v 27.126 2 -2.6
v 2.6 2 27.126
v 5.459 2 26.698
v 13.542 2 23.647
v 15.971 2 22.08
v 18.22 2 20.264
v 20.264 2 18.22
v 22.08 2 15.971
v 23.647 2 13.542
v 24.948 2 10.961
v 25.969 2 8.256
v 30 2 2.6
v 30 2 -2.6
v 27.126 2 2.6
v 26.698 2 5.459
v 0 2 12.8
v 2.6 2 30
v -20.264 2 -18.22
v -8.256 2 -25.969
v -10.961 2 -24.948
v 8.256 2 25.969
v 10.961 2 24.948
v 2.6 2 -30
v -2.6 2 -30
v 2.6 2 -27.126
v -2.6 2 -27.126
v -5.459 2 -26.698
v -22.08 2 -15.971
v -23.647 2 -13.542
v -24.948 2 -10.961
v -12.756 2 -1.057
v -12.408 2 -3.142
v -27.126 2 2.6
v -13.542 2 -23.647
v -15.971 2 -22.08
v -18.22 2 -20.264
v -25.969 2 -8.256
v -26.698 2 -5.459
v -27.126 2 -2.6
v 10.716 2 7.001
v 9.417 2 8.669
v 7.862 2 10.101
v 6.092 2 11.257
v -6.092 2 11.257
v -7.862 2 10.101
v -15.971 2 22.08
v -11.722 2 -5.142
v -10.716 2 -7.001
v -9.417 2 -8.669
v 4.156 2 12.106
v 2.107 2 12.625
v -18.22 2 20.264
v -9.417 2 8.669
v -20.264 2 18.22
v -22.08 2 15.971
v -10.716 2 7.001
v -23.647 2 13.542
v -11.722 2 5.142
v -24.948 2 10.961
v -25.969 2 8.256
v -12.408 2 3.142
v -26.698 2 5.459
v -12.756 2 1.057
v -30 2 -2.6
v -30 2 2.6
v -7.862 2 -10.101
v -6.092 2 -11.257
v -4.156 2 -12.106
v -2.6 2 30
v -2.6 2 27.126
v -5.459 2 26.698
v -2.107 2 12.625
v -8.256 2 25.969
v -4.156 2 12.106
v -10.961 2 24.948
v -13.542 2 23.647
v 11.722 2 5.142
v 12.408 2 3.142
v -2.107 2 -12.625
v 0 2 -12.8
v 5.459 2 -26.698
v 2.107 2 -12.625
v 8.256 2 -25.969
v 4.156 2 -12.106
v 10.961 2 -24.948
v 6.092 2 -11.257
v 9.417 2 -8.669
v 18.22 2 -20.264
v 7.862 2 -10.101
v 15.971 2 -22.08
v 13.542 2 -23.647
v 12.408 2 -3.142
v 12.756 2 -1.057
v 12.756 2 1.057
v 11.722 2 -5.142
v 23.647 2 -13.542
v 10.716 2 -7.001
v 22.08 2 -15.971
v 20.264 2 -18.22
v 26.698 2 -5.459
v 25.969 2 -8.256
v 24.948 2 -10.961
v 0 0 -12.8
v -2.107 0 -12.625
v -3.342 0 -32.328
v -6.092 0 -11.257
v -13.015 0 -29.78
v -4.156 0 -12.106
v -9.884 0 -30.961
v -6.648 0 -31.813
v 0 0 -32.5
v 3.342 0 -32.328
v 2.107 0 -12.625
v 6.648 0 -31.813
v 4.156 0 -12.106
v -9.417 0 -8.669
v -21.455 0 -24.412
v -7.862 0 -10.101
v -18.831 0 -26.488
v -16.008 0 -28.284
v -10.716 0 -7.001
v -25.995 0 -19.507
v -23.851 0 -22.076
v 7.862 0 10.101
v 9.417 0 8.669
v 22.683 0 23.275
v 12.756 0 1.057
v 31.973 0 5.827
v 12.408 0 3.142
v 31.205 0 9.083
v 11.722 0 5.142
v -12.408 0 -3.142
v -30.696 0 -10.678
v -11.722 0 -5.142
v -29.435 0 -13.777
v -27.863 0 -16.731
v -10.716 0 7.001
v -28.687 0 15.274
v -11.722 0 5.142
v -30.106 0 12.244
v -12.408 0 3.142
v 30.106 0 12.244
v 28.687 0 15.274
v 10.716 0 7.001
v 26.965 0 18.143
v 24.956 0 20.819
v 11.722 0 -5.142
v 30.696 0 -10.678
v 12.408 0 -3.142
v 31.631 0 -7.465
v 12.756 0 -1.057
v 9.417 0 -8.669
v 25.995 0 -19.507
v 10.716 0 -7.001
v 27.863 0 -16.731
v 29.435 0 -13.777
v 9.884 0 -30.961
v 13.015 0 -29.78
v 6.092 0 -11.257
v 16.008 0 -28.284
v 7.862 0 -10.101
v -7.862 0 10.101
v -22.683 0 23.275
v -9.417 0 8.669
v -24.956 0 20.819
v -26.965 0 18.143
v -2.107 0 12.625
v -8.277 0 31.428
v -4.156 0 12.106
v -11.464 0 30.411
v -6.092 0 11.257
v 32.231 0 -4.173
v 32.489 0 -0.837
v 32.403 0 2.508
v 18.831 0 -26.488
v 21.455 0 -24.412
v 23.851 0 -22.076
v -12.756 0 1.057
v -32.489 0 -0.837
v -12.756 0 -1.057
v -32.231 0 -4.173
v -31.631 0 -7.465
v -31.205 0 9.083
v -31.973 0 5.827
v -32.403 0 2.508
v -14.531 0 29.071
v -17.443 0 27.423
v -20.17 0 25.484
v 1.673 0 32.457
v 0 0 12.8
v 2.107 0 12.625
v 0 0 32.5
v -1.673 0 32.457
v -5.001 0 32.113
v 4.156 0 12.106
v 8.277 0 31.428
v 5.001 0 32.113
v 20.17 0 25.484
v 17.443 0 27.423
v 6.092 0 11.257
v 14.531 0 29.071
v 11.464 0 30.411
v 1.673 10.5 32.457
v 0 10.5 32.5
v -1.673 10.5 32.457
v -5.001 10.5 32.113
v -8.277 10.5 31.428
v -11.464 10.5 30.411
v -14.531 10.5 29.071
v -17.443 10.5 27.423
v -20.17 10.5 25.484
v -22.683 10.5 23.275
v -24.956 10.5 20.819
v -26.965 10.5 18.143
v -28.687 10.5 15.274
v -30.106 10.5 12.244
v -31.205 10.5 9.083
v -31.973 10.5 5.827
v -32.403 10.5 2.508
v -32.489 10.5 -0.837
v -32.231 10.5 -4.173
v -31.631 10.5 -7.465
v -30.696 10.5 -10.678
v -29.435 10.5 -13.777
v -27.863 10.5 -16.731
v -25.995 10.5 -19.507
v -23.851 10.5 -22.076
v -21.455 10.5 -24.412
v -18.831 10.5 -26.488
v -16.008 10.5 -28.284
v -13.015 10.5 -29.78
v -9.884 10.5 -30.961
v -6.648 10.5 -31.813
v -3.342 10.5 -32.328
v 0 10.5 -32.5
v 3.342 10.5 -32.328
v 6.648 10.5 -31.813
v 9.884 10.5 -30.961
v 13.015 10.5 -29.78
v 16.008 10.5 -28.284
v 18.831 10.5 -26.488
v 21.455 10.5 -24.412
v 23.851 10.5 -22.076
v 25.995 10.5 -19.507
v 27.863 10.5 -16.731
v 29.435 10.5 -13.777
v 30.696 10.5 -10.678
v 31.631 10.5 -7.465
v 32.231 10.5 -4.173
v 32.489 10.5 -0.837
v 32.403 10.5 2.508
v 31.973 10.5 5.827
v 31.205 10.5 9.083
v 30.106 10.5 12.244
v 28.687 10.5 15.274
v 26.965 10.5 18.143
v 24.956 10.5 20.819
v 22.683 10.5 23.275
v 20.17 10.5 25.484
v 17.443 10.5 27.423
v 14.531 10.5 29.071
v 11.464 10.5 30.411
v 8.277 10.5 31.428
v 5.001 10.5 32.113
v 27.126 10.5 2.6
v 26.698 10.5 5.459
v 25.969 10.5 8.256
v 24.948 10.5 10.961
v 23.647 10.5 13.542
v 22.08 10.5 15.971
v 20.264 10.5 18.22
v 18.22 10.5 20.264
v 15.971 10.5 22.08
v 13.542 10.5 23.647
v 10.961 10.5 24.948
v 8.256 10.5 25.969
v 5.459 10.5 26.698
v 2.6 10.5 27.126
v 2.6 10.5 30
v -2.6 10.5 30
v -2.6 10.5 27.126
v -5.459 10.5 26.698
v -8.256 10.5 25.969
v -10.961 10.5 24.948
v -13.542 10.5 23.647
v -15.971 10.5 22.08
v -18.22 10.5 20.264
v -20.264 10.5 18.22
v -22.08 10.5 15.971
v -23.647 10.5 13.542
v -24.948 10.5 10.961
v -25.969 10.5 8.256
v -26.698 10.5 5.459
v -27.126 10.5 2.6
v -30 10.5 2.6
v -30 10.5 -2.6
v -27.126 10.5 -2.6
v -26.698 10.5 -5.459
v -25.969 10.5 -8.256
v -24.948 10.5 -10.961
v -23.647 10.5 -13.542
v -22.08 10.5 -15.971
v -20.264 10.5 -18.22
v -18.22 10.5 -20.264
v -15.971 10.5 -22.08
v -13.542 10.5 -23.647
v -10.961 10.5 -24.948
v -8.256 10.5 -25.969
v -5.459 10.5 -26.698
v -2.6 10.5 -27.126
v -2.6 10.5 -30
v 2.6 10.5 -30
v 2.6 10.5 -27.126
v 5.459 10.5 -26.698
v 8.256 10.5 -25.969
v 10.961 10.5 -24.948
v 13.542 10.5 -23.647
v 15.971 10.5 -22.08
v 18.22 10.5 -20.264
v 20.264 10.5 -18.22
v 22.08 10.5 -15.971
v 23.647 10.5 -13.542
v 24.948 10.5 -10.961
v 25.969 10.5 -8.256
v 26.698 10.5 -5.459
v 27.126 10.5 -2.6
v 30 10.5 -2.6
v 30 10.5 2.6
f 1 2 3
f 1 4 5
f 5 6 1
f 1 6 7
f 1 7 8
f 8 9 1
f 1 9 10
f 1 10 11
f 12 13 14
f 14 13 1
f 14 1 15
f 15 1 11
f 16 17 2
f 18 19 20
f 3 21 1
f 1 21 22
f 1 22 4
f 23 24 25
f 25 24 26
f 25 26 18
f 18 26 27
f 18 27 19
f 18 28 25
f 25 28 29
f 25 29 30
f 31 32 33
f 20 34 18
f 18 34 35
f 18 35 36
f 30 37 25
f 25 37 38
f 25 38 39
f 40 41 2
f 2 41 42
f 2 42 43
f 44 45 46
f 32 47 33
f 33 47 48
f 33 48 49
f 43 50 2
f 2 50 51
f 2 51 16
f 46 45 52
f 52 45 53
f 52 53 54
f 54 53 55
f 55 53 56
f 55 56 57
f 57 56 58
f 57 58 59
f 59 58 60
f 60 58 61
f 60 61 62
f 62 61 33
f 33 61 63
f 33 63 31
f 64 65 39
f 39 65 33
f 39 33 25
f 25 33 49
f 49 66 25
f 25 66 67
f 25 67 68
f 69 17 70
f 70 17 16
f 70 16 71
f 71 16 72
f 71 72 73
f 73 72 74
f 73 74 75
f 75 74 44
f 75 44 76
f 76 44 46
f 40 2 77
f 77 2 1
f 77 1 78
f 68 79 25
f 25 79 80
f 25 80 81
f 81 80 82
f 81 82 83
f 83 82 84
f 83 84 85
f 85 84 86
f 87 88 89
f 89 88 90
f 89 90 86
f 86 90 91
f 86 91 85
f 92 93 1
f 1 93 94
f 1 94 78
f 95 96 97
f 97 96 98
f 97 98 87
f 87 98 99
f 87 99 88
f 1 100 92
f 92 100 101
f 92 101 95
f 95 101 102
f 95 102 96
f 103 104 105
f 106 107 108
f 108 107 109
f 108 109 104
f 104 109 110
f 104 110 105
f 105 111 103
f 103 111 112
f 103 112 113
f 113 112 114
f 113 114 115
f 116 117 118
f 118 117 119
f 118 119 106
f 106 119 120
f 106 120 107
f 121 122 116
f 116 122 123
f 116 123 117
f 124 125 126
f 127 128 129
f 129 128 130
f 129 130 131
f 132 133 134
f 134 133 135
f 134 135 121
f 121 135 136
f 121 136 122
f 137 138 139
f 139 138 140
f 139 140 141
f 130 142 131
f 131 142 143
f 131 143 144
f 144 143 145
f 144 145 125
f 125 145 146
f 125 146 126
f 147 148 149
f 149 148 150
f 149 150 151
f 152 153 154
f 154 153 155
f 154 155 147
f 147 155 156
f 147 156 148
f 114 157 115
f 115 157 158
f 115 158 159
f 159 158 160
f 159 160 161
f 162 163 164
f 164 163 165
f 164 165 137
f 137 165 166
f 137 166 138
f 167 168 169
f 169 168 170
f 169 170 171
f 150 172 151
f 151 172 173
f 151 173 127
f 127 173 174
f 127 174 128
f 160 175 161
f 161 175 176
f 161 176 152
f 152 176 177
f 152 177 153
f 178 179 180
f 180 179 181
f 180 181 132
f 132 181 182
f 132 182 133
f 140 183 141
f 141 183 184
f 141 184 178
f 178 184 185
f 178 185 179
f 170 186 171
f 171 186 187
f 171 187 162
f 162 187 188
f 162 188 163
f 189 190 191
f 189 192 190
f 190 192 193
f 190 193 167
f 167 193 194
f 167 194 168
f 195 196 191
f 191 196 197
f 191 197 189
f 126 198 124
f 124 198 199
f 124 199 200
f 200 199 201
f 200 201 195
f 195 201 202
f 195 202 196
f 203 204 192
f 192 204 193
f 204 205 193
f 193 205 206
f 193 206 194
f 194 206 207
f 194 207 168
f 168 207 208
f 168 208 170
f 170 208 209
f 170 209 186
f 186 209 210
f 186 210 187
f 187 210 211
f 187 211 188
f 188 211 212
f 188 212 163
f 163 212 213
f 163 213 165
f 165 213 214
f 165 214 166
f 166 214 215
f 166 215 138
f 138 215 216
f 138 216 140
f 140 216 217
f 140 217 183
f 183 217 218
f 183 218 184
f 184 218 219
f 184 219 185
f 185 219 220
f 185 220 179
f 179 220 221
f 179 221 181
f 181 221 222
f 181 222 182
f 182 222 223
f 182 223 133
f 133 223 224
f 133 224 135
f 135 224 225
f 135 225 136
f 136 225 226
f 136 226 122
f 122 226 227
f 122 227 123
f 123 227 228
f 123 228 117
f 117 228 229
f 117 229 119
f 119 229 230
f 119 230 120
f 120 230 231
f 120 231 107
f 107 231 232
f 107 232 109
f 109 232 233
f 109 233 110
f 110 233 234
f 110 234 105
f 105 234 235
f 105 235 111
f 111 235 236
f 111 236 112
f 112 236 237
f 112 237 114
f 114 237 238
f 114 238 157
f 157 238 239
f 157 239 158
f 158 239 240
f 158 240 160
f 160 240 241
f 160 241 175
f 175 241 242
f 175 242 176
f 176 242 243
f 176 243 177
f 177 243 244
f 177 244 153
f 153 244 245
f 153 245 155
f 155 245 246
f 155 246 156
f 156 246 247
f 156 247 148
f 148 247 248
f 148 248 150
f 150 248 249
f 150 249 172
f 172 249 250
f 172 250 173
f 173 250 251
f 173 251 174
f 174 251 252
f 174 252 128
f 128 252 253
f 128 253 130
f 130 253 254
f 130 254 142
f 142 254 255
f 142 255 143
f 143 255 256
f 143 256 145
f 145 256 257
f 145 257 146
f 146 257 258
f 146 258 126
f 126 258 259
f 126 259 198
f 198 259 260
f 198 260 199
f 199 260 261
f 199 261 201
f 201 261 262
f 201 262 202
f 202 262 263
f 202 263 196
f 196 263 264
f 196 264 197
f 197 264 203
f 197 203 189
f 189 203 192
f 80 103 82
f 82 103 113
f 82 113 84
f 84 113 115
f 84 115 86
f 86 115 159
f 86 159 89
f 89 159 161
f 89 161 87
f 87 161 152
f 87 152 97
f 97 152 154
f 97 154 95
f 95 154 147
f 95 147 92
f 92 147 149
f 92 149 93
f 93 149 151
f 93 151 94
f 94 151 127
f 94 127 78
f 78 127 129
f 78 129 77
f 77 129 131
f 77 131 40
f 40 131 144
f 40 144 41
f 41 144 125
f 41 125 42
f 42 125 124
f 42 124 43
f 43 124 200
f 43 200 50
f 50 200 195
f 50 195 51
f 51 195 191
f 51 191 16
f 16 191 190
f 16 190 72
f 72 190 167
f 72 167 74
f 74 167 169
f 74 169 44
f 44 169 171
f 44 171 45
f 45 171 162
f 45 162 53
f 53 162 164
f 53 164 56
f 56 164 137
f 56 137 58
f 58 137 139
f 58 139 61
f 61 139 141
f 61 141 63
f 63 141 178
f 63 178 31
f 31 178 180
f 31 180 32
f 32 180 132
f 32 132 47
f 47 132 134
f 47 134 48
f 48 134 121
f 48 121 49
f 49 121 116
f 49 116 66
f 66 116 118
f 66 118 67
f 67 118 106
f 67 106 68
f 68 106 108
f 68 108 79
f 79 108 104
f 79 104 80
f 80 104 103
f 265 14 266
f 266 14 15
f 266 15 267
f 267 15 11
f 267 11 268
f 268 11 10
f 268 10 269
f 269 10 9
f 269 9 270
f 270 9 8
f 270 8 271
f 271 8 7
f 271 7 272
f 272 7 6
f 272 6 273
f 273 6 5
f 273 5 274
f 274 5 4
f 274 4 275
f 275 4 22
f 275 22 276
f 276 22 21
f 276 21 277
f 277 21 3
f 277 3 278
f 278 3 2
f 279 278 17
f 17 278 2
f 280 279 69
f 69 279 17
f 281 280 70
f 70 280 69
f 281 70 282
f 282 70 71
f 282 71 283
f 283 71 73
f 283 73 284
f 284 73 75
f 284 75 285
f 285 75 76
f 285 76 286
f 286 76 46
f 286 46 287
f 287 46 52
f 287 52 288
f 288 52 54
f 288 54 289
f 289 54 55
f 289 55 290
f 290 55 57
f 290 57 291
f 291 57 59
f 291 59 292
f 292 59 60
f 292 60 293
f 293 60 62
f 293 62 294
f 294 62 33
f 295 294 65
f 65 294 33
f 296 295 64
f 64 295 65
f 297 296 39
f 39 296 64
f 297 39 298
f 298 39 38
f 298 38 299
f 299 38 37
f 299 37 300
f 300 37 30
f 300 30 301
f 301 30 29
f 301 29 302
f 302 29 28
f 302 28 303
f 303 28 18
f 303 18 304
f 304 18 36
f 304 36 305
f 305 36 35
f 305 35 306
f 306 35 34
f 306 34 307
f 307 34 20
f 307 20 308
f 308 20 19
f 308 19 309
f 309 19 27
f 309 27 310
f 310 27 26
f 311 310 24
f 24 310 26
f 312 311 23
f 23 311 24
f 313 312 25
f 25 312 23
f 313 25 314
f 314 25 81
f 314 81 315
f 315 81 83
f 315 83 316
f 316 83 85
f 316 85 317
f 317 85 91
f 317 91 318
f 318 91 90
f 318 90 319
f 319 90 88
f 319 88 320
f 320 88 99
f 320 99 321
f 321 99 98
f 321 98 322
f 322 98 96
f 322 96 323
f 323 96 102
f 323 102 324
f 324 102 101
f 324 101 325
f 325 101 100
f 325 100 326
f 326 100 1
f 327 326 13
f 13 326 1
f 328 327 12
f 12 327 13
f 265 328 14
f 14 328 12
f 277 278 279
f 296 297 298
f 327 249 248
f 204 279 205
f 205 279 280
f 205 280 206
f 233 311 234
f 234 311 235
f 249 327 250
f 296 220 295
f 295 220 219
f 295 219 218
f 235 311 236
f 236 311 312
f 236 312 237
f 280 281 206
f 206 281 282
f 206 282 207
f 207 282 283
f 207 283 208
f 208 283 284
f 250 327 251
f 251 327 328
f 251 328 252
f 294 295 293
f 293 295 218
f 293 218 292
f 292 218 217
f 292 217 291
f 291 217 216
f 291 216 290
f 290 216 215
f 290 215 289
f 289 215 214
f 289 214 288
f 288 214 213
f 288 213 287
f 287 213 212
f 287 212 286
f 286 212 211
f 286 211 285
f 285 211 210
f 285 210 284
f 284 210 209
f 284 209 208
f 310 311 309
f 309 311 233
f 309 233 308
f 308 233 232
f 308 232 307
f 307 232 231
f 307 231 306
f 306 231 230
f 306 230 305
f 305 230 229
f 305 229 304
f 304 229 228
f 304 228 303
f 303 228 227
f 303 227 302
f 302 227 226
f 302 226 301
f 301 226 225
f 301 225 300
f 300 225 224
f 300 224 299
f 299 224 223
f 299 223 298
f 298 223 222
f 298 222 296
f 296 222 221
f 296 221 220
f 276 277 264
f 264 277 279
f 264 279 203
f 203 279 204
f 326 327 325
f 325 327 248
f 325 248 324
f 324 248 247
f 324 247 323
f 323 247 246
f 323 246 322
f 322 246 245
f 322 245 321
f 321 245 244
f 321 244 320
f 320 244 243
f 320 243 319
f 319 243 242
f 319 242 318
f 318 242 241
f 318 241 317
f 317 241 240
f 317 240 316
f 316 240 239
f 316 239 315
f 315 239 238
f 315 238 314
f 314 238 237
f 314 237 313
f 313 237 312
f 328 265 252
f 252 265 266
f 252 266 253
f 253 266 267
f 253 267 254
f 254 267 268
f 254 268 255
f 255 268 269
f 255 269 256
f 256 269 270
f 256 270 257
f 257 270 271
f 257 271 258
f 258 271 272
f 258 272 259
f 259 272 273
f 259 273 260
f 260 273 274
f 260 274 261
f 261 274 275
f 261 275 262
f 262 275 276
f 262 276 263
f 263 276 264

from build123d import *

# Parameters (mm, degrees)
SKETCH1_R           = 32.5
SKETCH1_R_2         = 12.8
BOSS_EXTRUDE1_DEPTH = 2
SKETCH2_R           = 32.5
BOSS_EXTRUDE2_DEPTH = 8.5


with BuildPart() as part:
    # Sketch1 → Boss-Extrude1 (new body)
    with BuildSketch(Plane(origin=(0, 0, 0), x_dir=(1, 0, 0), z_dir=(0, 1, 0))):
        with Locations(Location((0, 0, 0), (0, 0, 270))):
            Circle(SKETCH1_R)
        with Locations(Location((0, 0, 0), (0, 0, 270))):
            Circle(SKETCH1_R_2, mode=Mode.SUBTRACT)
    extrude(amount=BOSS_EXTRUDE1_DEPTH)

    # Sketch2 → Boss-Extrude2 (add)
    with BuildSketch(Plane(origin=(0, 2, 0), x_dir=(1, 0, 0), z_dir=(0, 1, 0))):
        with Locations(Location((0, 0, 0), (0, 0, 270))):
            Circle(SKETCH2_R)
        with BuildLine():
            Line((2.6, -27.125679715), (2.6, -30))
            Line((2.6, -30), (-2.6, -30))
            Line((-2.6, -30), (-2.6, -27.125679715))
            ThreePointArc((-2.6, -27.125679715), (-19.268659787, -19.268659787), (-27.125679715, -2.6))
            Line((-27.125679715, -2.6), (-30, -2.6))
            Line((-30, -2.6), (-30, 2.6))
            Line((-30, 2.6), (-27.125679715, 2.6))
            ThreePointArc((-27.125679715, 2.6), (-19.268659787, 19.268659787), (-2.6, 27.125679715))
            Line((-2.6, 27.125679715), (-2.6, 30))
            Line((-2.6, 30), (2.6, 30))
            Line((2.6, 30), (2.6, 27.125679715))
            ThreePointArc((2.6, 27.125679715), (19.268659787, 19.268659787), (27.125679715, 2.6))
            Line((27.125679715, 2.6), (30, 2.6))
            Line((30, 2.6), (30, -2.6))
            Line((30, -2.6), (27.125679715, -2.6))
            ThreePointArc((27.125679715, -2.6), (19.268659787, -19.268659787), (2.6, -27.125679715))
        make_face(mode=Mode.SUBTRACT)
    extrude(amount=BOSS_EXTRUDE2_DEPTH)


solid = part.part
